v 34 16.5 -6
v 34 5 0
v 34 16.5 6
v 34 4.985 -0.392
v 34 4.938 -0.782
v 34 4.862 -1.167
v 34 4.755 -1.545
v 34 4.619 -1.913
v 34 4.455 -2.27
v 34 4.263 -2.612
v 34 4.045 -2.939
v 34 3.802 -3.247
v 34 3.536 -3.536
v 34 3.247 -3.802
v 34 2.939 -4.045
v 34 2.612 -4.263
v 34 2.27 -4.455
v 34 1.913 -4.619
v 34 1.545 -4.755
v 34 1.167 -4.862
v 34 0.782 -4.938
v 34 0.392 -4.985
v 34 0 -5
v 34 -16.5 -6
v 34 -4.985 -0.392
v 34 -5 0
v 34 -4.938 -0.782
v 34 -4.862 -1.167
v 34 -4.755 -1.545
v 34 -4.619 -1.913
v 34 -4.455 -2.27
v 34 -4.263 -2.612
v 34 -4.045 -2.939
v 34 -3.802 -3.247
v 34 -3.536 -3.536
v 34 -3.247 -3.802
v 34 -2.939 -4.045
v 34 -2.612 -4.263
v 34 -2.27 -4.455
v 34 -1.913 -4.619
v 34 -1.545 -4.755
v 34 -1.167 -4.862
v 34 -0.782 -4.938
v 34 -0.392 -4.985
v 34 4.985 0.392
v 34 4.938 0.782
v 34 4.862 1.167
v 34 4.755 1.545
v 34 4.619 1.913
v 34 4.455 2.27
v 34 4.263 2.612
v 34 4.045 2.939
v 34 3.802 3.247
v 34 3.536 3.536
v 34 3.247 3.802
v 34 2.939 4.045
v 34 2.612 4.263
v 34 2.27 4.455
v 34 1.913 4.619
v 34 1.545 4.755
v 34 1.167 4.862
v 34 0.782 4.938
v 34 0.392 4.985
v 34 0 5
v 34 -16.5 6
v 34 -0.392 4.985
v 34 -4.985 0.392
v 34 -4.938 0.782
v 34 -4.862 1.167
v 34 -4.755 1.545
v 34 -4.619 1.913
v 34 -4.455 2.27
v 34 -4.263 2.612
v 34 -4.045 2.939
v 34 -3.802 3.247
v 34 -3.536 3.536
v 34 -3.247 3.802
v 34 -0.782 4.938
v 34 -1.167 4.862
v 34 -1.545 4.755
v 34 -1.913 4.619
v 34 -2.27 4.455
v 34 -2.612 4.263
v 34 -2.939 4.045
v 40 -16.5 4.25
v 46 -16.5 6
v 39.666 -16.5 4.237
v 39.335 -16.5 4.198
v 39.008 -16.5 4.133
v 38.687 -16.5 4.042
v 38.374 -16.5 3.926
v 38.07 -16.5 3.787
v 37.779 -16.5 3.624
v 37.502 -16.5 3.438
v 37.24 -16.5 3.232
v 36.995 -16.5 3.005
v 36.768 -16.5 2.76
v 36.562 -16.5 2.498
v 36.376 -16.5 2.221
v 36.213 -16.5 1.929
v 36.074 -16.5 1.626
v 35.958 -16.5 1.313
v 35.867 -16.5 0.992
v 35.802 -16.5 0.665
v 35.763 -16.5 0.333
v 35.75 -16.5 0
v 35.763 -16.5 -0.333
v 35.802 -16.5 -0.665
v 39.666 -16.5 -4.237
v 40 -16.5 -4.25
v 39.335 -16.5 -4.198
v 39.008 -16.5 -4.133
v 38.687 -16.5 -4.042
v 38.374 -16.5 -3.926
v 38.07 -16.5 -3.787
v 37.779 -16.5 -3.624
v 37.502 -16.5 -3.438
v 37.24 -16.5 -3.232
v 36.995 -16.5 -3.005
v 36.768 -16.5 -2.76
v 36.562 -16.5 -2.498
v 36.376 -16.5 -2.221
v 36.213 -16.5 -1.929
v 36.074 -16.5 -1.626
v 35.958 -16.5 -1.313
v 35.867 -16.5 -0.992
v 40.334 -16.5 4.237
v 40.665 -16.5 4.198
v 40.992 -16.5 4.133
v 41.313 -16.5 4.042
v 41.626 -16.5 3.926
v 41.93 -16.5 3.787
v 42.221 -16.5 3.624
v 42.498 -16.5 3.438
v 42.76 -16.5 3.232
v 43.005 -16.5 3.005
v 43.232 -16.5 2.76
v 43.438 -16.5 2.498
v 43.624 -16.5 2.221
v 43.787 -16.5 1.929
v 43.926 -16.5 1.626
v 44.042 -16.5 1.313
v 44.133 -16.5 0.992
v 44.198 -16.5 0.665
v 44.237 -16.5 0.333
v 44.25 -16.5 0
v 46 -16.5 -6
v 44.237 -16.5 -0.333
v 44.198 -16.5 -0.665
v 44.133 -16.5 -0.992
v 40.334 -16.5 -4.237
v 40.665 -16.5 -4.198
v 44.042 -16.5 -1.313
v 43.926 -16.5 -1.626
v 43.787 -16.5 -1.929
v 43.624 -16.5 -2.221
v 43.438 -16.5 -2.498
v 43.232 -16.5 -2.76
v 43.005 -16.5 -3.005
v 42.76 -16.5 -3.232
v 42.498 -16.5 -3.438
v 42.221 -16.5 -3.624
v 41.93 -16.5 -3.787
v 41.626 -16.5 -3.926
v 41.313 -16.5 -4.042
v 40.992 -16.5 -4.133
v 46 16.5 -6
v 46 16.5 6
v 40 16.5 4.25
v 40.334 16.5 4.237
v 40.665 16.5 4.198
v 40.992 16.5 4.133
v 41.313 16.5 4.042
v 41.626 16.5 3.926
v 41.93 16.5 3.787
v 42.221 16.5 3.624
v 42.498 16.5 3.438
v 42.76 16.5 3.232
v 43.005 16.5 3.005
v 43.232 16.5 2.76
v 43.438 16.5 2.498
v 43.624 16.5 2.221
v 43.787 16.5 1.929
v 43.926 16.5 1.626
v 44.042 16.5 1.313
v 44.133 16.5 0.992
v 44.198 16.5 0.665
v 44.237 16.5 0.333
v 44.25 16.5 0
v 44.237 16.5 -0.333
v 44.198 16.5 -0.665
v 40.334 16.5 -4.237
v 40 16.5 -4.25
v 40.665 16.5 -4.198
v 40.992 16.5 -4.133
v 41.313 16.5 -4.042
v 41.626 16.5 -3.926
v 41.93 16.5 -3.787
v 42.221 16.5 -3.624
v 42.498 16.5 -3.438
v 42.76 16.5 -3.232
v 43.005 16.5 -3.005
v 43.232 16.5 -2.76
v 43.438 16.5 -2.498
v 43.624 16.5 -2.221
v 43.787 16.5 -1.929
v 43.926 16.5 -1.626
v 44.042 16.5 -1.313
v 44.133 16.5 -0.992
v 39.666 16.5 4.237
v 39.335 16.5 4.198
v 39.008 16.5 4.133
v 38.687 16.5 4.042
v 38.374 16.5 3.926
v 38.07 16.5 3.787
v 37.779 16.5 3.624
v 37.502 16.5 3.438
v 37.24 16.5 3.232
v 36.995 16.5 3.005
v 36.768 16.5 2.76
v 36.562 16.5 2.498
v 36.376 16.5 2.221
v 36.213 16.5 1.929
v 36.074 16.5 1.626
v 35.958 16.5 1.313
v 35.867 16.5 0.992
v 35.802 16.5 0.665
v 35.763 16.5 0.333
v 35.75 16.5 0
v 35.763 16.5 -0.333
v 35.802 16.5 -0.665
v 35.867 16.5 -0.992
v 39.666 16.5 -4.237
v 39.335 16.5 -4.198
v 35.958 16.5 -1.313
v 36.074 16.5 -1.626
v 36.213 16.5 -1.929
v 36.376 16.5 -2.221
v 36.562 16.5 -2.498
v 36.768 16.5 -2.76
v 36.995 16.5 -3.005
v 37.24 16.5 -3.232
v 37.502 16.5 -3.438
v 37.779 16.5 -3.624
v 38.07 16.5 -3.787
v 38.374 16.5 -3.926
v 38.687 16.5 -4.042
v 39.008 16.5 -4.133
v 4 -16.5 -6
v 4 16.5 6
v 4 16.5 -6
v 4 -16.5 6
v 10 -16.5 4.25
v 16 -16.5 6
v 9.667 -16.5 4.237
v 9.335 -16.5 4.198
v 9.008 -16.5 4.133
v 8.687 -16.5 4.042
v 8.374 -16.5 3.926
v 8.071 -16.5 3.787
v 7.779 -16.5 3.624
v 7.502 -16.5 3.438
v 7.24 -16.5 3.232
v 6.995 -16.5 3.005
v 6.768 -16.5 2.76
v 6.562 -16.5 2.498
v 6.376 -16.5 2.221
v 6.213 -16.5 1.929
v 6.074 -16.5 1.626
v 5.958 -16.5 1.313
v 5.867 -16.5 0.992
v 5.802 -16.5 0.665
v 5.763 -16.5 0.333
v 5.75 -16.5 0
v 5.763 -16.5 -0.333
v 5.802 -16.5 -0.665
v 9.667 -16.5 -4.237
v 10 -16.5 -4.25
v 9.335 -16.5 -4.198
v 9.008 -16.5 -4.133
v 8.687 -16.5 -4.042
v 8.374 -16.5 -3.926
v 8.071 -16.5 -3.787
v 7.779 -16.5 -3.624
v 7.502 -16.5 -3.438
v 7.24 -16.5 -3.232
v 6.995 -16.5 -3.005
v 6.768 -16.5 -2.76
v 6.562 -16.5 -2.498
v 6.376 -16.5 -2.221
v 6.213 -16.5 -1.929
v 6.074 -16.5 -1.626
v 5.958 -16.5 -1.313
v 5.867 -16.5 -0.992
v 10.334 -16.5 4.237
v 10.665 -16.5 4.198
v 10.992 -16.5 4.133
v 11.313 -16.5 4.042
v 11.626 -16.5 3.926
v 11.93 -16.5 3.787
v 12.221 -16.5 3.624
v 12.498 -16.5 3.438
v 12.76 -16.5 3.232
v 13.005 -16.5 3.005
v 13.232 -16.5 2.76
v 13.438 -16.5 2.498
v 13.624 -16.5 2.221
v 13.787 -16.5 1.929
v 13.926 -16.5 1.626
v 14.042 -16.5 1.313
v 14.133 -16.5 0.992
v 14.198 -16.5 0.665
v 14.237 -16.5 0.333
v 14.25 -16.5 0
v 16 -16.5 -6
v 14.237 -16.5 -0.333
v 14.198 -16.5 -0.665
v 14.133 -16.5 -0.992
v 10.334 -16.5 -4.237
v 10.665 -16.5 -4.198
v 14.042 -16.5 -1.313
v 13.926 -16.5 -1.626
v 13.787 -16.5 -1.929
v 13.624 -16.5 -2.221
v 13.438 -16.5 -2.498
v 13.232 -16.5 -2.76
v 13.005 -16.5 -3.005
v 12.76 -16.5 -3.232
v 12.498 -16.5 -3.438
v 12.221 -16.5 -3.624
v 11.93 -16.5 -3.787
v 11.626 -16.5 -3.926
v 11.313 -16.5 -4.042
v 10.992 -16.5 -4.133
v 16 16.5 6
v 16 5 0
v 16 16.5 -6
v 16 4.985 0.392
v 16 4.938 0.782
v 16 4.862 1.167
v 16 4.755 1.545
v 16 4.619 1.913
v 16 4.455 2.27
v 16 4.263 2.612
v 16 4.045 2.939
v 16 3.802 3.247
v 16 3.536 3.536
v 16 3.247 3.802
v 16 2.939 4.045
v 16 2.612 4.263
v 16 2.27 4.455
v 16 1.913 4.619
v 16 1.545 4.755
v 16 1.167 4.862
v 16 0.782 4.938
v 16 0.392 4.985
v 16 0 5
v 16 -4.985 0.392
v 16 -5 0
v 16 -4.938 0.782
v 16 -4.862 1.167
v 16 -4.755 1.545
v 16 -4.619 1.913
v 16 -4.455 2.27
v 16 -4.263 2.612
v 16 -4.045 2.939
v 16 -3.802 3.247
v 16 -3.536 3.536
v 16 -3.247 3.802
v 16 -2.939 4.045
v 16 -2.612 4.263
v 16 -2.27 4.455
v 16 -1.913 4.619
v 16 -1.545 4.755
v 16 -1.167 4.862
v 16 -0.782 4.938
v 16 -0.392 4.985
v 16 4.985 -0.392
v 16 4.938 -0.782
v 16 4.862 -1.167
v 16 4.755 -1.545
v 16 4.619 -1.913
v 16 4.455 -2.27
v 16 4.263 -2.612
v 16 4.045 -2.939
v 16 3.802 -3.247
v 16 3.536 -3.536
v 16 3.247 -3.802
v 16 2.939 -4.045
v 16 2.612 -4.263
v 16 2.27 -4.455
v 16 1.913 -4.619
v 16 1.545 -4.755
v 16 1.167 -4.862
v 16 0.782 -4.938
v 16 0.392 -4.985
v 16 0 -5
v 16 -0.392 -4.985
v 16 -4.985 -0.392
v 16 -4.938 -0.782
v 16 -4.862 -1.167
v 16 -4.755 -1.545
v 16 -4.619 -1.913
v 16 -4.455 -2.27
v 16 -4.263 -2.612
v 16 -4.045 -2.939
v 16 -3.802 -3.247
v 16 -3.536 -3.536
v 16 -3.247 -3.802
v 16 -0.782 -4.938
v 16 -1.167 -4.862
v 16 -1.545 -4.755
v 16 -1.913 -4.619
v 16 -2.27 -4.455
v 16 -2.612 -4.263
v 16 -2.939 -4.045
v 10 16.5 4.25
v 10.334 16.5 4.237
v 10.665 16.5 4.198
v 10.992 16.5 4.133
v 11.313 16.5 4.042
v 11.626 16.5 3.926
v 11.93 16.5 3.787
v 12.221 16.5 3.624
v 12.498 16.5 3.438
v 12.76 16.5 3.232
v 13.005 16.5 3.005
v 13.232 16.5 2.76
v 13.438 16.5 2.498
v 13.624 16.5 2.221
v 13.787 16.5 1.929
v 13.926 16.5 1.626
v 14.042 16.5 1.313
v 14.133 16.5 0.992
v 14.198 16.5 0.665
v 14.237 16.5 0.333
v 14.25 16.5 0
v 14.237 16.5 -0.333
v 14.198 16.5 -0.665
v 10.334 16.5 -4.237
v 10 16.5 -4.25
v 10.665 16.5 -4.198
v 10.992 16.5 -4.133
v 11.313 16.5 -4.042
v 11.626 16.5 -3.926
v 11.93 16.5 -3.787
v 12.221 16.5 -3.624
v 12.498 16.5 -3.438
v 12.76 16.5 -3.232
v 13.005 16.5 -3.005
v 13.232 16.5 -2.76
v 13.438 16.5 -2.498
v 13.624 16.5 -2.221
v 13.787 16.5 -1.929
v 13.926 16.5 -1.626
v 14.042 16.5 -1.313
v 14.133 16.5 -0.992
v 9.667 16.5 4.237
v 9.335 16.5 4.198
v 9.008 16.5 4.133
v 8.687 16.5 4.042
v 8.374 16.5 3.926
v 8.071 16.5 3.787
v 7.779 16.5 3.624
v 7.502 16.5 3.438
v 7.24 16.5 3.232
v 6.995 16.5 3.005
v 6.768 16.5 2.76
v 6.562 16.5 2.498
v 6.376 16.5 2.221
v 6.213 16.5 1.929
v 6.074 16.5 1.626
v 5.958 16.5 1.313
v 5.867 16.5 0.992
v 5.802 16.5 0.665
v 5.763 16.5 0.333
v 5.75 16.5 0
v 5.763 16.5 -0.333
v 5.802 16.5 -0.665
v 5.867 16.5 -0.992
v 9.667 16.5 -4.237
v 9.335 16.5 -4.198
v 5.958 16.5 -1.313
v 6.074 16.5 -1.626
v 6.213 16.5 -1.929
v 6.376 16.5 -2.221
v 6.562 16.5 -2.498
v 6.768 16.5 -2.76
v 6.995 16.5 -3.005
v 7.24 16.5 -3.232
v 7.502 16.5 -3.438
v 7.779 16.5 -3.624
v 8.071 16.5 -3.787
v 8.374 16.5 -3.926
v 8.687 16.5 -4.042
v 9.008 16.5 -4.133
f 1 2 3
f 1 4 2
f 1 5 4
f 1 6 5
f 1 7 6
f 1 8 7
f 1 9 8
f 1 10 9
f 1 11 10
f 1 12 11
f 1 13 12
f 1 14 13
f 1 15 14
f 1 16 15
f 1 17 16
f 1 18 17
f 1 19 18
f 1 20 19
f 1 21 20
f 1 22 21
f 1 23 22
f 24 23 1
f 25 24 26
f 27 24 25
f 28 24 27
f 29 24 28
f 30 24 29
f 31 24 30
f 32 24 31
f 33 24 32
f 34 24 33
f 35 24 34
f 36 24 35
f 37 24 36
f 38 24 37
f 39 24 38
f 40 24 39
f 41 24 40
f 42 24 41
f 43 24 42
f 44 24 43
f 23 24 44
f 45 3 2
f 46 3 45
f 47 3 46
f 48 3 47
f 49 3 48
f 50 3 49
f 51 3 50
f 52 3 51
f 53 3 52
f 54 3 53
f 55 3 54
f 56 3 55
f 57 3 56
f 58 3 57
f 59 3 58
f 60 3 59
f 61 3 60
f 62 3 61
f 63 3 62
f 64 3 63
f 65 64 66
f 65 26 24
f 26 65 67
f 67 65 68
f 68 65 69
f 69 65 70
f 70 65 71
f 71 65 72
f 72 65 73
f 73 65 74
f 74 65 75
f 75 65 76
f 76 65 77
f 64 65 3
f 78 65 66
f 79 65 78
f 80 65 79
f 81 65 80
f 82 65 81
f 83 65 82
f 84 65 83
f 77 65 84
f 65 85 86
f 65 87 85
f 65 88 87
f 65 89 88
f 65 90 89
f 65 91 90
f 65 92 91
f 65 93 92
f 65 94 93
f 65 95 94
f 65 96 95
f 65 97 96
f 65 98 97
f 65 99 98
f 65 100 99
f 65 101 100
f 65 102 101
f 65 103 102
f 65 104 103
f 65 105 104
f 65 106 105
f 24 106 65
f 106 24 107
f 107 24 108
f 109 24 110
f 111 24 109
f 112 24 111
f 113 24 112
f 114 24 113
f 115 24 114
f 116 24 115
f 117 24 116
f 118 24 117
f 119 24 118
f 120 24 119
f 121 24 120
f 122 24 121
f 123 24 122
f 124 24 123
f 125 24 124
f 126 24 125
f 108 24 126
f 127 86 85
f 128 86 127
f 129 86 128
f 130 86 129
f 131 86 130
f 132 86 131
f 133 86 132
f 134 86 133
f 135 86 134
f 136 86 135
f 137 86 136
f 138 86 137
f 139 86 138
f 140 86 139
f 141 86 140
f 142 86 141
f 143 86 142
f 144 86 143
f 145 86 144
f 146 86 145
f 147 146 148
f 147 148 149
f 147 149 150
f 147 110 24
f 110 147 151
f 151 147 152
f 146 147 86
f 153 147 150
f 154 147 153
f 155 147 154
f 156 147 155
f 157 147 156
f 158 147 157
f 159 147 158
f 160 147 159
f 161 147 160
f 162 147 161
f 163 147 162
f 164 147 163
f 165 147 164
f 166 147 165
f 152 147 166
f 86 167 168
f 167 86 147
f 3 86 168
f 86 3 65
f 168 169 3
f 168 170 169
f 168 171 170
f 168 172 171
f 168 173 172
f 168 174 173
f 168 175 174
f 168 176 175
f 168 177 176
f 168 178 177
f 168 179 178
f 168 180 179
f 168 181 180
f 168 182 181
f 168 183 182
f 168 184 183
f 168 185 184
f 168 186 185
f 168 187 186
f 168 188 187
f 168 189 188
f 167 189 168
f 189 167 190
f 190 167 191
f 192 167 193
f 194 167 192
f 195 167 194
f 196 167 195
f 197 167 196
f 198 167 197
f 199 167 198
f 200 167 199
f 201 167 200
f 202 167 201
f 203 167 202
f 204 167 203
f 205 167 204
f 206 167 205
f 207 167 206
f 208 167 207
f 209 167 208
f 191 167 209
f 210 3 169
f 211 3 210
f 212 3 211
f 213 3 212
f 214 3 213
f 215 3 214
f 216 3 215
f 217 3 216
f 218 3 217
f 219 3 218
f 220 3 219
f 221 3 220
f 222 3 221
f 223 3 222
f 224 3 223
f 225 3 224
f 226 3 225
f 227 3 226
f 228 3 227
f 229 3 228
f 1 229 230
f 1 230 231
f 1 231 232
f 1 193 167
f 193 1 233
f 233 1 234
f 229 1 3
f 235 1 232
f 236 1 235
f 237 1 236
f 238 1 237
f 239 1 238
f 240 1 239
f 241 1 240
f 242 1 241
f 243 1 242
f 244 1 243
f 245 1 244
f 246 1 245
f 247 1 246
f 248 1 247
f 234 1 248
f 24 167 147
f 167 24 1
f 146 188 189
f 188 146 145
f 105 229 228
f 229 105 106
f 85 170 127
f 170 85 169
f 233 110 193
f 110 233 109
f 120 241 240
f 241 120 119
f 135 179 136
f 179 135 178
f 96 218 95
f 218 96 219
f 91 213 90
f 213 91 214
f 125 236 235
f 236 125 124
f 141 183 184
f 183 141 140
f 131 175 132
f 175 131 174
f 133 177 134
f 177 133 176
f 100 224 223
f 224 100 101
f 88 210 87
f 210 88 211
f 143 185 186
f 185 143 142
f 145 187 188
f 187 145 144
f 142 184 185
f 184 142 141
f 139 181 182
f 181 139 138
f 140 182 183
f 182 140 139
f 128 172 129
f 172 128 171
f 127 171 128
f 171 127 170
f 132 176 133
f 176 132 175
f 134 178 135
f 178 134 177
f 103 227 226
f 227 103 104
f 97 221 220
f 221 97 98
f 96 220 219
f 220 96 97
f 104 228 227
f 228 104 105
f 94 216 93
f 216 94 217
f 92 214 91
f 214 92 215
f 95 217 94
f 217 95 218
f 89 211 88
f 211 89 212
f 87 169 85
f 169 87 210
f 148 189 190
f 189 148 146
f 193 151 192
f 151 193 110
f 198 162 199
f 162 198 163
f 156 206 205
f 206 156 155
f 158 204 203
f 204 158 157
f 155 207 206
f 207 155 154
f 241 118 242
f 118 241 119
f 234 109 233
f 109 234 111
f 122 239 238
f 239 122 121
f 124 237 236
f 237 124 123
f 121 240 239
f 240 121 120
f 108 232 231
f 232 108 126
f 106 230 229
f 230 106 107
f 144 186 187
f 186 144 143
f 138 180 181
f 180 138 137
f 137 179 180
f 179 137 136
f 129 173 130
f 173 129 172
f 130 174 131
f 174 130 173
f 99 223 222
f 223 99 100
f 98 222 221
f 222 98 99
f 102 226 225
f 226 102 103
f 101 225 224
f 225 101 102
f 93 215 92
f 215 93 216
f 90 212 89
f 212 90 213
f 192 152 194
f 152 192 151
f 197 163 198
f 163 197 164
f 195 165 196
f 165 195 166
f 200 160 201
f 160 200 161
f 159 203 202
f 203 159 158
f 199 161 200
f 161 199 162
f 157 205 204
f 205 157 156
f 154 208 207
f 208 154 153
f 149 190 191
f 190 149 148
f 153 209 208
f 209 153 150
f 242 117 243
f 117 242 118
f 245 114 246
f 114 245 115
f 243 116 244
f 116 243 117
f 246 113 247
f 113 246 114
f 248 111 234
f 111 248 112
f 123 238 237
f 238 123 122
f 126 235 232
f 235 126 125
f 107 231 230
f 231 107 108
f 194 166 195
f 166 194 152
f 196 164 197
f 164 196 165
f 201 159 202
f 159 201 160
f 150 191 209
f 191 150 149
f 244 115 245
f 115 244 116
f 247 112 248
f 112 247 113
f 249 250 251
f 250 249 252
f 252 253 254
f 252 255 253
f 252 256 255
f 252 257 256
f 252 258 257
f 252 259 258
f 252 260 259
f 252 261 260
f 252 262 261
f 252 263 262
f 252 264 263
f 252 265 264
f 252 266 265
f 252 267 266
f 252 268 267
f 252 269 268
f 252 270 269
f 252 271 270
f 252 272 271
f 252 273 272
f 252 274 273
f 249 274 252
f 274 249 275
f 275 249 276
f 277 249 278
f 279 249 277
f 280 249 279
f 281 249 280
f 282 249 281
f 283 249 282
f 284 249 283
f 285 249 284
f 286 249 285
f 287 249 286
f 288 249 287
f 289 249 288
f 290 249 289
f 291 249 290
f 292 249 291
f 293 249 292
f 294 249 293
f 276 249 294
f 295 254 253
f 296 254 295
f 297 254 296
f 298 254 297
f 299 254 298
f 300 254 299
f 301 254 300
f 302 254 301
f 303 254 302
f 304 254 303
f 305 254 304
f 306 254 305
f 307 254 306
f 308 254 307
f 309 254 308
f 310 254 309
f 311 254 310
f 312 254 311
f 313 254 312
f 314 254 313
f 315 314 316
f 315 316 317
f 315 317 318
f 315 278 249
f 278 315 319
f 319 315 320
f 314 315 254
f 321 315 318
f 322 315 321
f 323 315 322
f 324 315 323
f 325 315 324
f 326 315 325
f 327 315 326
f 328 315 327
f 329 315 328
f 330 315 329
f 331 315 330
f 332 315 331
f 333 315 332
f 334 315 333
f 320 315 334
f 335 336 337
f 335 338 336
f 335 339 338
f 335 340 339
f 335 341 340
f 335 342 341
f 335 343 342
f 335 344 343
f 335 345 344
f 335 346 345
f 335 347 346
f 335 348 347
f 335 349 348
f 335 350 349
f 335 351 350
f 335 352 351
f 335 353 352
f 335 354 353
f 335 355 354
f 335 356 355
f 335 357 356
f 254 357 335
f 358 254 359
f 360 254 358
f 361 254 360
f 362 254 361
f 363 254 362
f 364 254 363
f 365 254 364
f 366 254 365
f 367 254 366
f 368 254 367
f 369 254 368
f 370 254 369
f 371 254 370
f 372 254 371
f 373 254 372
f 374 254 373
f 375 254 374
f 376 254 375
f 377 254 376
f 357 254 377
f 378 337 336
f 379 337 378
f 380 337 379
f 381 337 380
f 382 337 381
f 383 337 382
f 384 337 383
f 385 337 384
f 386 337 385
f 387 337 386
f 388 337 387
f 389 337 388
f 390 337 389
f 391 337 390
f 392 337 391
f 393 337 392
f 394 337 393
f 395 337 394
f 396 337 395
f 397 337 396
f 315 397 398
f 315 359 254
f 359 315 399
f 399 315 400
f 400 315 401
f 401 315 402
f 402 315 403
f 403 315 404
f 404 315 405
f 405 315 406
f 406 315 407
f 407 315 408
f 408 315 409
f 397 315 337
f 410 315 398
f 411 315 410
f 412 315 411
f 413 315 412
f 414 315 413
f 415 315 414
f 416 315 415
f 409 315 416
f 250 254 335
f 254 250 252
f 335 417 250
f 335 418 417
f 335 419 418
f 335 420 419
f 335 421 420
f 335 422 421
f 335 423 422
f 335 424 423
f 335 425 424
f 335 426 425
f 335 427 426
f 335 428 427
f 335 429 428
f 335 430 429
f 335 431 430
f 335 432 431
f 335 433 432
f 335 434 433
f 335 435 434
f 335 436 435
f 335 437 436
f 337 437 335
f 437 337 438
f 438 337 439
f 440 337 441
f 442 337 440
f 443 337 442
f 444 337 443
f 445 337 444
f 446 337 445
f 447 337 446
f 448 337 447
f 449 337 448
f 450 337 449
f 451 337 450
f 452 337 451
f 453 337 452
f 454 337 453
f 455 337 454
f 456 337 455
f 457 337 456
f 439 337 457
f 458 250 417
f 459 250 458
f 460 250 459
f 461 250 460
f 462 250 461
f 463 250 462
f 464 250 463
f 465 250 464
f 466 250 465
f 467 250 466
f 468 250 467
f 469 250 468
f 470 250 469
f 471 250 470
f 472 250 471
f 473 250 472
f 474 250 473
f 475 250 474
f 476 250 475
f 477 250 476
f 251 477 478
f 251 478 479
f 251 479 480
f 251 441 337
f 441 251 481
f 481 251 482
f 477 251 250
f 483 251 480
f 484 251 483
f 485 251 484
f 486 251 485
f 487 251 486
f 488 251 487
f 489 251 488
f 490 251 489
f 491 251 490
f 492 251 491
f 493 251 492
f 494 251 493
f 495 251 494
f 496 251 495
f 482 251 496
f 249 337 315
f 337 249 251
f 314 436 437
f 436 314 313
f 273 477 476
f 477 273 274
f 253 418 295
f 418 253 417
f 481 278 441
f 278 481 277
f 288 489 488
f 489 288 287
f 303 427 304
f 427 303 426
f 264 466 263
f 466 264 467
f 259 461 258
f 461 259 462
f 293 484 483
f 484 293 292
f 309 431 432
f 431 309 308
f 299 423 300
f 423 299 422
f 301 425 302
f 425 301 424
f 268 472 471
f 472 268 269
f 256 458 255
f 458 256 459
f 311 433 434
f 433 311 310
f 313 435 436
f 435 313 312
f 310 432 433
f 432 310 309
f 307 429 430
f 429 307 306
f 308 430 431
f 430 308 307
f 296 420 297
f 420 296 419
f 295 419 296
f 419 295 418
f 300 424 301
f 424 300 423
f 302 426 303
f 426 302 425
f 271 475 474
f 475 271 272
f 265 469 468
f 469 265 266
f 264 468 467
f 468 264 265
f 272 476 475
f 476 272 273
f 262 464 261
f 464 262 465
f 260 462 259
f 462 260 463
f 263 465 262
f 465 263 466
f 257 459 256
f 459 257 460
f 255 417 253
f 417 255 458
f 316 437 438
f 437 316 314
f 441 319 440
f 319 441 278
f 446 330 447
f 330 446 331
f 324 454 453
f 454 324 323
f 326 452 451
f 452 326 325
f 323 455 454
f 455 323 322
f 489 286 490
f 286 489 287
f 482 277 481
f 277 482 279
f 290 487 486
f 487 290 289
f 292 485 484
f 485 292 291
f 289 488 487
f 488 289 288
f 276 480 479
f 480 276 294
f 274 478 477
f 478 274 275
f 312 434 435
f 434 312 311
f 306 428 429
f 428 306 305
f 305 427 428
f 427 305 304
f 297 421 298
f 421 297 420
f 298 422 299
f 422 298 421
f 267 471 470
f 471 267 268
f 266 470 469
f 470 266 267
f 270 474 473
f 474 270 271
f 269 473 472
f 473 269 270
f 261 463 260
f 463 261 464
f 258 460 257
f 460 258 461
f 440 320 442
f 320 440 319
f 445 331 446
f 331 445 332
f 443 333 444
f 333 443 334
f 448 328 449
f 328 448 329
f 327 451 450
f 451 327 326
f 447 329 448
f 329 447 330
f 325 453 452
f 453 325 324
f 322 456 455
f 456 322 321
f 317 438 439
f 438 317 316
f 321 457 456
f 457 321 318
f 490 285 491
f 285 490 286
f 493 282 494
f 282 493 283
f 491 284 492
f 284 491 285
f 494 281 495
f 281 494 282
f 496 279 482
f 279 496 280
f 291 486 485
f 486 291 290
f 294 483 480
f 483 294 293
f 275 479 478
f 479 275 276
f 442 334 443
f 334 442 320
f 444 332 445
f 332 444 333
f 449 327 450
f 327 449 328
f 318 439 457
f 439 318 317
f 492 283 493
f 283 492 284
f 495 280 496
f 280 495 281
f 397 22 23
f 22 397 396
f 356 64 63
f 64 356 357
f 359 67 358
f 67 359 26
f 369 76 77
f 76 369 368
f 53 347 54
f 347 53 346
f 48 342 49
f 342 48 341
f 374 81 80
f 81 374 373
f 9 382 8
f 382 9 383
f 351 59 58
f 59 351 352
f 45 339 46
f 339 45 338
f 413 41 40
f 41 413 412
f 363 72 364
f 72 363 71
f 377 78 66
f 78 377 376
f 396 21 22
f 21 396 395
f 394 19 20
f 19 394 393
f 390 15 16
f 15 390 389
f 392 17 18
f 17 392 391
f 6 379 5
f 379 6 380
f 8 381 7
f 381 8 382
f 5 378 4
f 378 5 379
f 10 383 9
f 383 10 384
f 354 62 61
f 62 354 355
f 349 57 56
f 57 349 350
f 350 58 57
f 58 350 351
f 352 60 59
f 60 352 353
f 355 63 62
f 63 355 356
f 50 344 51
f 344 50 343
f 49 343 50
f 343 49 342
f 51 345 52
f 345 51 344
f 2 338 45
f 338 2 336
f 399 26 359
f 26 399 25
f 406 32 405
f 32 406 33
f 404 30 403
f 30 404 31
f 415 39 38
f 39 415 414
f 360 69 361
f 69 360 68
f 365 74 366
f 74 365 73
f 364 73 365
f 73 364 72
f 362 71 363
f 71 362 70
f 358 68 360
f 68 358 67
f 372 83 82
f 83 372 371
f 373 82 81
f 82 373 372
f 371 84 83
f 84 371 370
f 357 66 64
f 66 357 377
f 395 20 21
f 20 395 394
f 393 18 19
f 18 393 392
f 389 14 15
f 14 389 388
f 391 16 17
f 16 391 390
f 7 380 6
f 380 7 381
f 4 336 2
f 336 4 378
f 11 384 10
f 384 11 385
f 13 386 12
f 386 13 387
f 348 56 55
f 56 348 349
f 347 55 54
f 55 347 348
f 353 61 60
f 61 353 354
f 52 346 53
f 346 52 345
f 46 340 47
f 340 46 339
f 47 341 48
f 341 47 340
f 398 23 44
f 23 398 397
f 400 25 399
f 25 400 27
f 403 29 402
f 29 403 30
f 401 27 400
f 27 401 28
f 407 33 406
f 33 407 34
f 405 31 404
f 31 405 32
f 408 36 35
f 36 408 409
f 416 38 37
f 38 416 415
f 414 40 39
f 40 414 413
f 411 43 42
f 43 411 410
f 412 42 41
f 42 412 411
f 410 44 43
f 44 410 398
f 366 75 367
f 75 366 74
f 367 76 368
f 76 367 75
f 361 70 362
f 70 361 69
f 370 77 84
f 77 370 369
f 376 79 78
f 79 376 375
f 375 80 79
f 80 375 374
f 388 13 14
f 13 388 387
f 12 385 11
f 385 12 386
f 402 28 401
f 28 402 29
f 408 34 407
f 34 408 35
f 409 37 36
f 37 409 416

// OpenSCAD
$fn=80;


module pipe() {
    rotate([90, 0, 0]) {
        difference() {
            cube([12, 12, 33], center=true);
            cylinder(d=8.5, h=120, center=true);
        }
    }
}


union() {
    translate([40, 0, 0]) {
        pipe();
    }
    translate([10, 0, 0]) {
        pipe();
    }
    rotate([0, 90, 0]) { 
        translate([0, 0, 25]) {
            cylinder(d=10, h=18, center=true);
        }
    }
}
